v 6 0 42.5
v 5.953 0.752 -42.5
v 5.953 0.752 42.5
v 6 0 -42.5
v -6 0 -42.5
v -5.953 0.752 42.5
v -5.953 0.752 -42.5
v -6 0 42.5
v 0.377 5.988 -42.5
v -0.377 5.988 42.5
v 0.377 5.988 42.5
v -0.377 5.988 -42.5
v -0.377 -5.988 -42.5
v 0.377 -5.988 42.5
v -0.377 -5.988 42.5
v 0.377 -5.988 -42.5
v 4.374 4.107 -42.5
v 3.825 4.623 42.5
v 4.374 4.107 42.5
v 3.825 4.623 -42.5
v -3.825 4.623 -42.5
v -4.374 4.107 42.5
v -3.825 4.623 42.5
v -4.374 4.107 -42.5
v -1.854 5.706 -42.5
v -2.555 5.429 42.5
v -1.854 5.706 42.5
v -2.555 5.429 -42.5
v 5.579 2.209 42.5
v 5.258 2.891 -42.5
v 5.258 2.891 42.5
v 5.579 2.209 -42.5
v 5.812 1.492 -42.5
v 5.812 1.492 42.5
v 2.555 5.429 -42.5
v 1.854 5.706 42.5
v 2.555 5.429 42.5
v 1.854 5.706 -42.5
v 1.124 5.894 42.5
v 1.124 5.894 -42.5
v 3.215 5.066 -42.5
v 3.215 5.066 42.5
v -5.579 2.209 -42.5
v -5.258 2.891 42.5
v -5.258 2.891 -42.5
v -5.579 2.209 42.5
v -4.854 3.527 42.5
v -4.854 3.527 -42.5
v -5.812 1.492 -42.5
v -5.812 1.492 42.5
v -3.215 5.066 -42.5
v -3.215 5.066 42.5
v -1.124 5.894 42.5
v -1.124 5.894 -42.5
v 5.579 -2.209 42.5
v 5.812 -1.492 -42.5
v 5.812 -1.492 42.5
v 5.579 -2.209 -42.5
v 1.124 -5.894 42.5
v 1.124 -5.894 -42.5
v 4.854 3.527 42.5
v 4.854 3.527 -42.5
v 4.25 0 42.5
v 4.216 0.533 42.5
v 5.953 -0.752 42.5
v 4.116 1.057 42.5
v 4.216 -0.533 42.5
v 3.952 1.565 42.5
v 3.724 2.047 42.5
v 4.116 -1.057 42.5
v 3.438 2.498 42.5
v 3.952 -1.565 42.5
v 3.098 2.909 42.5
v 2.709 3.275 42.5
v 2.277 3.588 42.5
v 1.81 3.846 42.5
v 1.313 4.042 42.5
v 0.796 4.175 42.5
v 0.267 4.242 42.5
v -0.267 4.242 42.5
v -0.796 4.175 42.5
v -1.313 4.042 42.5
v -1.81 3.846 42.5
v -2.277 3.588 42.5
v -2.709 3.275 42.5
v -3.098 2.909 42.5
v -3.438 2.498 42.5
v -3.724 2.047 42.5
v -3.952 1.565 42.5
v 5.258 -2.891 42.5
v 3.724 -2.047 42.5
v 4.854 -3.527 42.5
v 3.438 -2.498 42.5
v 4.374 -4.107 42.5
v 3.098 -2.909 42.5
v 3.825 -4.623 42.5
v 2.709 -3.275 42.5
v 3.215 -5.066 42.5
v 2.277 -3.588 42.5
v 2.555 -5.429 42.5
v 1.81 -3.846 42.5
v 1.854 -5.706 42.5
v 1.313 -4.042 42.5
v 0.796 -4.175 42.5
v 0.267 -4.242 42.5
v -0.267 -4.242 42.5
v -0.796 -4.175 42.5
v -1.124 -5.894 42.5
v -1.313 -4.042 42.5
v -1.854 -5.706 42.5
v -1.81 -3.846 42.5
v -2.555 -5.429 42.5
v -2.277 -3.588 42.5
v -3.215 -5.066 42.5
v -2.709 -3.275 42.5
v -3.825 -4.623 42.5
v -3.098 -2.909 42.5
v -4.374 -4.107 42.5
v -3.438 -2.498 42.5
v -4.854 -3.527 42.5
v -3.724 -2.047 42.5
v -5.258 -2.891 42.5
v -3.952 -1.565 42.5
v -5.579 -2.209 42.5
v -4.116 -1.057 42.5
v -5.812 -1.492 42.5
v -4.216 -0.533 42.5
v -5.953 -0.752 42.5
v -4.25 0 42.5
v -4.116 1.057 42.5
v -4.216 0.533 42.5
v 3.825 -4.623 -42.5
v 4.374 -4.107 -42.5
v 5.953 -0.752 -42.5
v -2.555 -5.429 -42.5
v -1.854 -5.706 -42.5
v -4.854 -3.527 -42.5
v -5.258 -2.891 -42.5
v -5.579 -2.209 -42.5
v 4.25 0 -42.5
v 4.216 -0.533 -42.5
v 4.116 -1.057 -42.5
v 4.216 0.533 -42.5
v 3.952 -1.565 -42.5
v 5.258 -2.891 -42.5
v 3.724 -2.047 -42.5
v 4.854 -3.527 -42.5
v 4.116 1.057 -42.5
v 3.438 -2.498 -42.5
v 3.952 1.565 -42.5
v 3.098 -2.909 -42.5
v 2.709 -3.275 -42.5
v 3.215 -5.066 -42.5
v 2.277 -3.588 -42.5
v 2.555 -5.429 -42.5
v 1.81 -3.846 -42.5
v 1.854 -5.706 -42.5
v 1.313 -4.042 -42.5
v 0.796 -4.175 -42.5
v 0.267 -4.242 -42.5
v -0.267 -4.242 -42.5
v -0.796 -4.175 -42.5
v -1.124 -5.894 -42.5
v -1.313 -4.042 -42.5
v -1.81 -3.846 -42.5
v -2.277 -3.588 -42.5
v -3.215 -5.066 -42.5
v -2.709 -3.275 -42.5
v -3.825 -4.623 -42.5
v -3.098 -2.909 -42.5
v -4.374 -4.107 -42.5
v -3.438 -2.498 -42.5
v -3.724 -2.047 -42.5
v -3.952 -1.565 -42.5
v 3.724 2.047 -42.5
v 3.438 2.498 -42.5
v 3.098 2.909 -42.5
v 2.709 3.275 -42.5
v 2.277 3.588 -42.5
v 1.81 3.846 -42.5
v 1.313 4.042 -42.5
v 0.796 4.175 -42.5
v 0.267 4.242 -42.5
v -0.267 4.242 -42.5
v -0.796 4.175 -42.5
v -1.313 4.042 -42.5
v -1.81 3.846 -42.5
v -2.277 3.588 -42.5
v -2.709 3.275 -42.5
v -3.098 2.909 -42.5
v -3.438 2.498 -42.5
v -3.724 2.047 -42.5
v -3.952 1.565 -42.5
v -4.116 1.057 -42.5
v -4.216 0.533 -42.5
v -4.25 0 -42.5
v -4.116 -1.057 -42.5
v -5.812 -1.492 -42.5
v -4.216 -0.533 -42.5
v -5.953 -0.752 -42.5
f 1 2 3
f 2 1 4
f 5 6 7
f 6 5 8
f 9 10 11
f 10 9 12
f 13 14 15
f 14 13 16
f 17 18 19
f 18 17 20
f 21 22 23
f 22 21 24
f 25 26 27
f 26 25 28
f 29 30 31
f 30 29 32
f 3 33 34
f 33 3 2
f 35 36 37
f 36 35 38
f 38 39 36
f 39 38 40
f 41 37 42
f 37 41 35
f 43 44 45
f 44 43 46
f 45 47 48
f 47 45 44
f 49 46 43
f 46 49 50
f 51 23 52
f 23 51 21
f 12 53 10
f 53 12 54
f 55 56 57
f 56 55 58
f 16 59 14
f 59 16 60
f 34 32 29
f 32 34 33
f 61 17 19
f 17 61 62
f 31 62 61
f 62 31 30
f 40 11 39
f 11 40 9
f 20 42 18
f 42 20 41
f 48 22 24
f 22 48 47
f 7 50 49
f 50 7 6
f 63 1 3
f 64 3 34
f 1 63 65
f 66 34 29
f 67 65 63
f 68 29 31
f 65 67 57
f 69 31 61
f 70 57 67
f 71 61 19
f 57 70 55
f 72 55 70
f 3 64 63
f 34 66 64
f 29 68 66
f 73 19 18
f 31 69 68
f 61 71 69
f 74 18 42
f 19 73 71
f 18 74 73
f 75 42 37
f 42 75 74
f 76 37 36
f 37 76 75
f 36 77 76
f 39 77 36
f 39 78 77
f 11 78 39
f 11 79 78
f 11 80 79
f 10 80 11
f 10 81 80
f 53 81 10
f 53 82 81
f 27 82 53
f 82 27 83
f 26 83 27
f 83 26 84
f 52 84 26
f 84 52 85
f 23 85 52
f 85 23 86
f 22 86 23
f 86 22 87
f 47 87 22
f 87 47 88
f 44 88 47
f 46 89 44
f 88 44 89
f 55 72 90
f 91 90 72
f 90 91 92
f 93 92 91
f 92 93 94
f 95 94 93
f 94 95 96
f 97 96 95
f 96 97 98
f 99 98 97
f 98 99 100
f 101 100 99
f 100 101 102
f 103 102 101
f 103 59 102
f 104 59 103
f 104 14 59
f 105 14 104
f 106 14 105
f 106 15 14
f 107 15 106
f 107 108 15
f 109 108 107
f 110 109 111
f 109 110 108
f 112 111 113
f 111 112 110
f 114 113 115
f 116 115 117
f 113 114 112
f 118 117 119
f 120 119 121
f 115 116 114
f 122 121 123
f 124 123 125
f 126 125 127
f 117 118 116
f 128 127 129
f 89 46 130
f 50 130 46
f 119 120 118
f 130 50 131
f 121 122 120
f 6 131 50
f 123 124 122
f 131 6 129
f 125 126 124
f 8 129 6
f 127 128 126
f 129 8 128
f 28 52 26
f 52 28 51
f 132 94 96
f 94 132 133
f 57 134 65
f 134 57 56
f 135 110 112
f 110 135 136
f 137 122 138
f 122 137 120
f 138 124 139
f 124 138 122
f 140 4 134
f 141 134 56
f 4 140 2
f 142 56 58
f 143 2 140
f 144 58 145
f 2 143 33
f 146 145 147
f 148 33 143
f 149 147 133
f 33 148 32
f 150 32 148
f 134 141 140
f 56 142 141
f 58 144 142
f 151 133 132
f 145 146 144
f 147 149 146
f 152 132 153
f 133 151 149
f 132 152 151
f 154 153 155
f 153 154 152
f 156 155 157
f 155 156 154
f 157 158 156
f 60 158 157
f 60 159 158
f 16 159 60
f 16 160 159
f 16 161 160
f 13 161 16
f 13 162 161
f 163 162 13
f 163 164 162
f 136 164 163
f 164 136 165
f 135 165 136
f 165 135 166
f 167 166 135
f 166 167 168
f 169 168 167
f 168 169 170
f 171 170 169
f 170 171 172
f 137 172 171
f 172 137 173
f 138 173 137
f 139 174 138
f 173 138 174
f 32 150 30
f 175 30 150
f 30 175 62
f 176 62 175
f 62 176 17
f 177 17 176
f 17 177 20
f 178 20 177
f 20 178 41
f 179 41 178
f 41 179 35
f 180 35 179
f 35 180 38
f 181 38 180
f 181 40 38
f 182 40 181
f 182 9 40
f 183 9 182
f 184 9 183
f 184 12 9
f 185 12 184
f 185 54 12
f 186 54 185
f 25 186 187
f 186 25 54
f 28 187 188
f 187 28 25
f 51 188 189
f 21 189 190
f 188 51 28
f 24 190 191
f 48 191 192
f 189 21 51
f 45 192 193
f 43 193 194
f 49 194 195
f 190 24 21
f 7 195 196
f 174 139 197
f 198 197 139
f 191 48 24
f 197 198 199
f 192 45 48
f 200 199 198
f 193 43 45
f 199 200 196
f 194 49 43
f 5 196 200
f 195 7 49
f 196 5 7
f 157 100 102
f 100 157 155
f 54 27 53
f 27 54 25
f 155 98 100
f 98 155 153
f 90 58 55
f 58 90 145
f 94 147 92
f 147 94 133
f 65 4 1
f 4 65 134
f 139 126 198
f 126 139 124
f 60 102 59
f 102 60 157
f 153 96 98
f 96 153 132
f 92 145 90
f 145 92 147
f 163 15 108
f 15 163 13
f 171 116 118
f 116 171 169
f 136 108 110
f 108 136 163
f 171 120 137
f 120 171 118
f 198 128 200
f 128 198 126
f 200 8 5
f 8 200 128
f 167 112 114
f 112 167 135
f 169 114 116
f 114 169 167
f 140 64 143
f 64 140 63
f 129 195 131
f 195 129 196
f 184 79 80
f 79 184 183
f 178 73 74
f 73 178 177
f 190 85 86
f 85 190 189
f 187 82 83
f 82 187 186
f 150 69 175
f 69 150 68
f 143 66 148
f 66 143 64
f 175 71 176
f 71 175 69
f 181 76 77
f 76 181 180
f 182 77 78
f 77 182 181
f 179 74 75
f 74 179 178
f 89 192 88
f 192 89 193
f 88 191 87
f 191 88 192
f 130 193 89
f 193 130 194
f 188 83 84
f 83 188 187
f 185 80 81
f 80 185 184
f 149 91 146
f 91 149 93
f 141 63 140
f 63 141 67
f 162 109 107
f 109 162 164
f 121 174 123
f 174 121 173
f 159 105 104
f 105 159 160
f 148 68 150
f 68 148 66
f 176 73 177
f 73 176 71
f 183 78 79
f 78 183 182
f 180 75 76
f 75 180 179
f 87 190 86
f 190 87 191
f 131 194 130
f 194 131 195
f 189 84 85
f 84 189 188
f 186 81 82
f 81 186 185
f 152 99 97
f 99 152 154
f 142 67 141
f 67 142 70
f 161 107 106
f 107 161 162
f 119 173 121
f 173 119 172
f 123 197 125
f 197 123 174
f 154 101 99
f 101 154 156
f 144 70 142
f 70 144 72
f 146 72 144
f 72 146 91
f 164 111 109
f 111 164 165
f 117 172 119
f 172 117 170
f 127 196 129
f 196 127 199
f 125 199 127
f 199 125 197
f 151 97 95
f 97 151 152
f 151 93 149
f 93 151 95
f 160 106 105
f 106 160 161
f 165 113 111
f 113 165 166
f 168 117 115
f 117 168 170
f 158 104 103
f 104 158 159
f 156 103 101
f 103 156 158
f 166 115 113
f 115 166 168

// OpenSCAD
$fn = 50;


difference() {
	union() {
		translate(v = [0, 0, -42.5000000000]) {
			cylinder(h = 85, r = 6.0000000000);
		}
	}
	union() {
		translate(v = [0, 0, -100.0000000000]) {
			cylinder(h = 200, r = 4.2500000000);
		}
	}
}
